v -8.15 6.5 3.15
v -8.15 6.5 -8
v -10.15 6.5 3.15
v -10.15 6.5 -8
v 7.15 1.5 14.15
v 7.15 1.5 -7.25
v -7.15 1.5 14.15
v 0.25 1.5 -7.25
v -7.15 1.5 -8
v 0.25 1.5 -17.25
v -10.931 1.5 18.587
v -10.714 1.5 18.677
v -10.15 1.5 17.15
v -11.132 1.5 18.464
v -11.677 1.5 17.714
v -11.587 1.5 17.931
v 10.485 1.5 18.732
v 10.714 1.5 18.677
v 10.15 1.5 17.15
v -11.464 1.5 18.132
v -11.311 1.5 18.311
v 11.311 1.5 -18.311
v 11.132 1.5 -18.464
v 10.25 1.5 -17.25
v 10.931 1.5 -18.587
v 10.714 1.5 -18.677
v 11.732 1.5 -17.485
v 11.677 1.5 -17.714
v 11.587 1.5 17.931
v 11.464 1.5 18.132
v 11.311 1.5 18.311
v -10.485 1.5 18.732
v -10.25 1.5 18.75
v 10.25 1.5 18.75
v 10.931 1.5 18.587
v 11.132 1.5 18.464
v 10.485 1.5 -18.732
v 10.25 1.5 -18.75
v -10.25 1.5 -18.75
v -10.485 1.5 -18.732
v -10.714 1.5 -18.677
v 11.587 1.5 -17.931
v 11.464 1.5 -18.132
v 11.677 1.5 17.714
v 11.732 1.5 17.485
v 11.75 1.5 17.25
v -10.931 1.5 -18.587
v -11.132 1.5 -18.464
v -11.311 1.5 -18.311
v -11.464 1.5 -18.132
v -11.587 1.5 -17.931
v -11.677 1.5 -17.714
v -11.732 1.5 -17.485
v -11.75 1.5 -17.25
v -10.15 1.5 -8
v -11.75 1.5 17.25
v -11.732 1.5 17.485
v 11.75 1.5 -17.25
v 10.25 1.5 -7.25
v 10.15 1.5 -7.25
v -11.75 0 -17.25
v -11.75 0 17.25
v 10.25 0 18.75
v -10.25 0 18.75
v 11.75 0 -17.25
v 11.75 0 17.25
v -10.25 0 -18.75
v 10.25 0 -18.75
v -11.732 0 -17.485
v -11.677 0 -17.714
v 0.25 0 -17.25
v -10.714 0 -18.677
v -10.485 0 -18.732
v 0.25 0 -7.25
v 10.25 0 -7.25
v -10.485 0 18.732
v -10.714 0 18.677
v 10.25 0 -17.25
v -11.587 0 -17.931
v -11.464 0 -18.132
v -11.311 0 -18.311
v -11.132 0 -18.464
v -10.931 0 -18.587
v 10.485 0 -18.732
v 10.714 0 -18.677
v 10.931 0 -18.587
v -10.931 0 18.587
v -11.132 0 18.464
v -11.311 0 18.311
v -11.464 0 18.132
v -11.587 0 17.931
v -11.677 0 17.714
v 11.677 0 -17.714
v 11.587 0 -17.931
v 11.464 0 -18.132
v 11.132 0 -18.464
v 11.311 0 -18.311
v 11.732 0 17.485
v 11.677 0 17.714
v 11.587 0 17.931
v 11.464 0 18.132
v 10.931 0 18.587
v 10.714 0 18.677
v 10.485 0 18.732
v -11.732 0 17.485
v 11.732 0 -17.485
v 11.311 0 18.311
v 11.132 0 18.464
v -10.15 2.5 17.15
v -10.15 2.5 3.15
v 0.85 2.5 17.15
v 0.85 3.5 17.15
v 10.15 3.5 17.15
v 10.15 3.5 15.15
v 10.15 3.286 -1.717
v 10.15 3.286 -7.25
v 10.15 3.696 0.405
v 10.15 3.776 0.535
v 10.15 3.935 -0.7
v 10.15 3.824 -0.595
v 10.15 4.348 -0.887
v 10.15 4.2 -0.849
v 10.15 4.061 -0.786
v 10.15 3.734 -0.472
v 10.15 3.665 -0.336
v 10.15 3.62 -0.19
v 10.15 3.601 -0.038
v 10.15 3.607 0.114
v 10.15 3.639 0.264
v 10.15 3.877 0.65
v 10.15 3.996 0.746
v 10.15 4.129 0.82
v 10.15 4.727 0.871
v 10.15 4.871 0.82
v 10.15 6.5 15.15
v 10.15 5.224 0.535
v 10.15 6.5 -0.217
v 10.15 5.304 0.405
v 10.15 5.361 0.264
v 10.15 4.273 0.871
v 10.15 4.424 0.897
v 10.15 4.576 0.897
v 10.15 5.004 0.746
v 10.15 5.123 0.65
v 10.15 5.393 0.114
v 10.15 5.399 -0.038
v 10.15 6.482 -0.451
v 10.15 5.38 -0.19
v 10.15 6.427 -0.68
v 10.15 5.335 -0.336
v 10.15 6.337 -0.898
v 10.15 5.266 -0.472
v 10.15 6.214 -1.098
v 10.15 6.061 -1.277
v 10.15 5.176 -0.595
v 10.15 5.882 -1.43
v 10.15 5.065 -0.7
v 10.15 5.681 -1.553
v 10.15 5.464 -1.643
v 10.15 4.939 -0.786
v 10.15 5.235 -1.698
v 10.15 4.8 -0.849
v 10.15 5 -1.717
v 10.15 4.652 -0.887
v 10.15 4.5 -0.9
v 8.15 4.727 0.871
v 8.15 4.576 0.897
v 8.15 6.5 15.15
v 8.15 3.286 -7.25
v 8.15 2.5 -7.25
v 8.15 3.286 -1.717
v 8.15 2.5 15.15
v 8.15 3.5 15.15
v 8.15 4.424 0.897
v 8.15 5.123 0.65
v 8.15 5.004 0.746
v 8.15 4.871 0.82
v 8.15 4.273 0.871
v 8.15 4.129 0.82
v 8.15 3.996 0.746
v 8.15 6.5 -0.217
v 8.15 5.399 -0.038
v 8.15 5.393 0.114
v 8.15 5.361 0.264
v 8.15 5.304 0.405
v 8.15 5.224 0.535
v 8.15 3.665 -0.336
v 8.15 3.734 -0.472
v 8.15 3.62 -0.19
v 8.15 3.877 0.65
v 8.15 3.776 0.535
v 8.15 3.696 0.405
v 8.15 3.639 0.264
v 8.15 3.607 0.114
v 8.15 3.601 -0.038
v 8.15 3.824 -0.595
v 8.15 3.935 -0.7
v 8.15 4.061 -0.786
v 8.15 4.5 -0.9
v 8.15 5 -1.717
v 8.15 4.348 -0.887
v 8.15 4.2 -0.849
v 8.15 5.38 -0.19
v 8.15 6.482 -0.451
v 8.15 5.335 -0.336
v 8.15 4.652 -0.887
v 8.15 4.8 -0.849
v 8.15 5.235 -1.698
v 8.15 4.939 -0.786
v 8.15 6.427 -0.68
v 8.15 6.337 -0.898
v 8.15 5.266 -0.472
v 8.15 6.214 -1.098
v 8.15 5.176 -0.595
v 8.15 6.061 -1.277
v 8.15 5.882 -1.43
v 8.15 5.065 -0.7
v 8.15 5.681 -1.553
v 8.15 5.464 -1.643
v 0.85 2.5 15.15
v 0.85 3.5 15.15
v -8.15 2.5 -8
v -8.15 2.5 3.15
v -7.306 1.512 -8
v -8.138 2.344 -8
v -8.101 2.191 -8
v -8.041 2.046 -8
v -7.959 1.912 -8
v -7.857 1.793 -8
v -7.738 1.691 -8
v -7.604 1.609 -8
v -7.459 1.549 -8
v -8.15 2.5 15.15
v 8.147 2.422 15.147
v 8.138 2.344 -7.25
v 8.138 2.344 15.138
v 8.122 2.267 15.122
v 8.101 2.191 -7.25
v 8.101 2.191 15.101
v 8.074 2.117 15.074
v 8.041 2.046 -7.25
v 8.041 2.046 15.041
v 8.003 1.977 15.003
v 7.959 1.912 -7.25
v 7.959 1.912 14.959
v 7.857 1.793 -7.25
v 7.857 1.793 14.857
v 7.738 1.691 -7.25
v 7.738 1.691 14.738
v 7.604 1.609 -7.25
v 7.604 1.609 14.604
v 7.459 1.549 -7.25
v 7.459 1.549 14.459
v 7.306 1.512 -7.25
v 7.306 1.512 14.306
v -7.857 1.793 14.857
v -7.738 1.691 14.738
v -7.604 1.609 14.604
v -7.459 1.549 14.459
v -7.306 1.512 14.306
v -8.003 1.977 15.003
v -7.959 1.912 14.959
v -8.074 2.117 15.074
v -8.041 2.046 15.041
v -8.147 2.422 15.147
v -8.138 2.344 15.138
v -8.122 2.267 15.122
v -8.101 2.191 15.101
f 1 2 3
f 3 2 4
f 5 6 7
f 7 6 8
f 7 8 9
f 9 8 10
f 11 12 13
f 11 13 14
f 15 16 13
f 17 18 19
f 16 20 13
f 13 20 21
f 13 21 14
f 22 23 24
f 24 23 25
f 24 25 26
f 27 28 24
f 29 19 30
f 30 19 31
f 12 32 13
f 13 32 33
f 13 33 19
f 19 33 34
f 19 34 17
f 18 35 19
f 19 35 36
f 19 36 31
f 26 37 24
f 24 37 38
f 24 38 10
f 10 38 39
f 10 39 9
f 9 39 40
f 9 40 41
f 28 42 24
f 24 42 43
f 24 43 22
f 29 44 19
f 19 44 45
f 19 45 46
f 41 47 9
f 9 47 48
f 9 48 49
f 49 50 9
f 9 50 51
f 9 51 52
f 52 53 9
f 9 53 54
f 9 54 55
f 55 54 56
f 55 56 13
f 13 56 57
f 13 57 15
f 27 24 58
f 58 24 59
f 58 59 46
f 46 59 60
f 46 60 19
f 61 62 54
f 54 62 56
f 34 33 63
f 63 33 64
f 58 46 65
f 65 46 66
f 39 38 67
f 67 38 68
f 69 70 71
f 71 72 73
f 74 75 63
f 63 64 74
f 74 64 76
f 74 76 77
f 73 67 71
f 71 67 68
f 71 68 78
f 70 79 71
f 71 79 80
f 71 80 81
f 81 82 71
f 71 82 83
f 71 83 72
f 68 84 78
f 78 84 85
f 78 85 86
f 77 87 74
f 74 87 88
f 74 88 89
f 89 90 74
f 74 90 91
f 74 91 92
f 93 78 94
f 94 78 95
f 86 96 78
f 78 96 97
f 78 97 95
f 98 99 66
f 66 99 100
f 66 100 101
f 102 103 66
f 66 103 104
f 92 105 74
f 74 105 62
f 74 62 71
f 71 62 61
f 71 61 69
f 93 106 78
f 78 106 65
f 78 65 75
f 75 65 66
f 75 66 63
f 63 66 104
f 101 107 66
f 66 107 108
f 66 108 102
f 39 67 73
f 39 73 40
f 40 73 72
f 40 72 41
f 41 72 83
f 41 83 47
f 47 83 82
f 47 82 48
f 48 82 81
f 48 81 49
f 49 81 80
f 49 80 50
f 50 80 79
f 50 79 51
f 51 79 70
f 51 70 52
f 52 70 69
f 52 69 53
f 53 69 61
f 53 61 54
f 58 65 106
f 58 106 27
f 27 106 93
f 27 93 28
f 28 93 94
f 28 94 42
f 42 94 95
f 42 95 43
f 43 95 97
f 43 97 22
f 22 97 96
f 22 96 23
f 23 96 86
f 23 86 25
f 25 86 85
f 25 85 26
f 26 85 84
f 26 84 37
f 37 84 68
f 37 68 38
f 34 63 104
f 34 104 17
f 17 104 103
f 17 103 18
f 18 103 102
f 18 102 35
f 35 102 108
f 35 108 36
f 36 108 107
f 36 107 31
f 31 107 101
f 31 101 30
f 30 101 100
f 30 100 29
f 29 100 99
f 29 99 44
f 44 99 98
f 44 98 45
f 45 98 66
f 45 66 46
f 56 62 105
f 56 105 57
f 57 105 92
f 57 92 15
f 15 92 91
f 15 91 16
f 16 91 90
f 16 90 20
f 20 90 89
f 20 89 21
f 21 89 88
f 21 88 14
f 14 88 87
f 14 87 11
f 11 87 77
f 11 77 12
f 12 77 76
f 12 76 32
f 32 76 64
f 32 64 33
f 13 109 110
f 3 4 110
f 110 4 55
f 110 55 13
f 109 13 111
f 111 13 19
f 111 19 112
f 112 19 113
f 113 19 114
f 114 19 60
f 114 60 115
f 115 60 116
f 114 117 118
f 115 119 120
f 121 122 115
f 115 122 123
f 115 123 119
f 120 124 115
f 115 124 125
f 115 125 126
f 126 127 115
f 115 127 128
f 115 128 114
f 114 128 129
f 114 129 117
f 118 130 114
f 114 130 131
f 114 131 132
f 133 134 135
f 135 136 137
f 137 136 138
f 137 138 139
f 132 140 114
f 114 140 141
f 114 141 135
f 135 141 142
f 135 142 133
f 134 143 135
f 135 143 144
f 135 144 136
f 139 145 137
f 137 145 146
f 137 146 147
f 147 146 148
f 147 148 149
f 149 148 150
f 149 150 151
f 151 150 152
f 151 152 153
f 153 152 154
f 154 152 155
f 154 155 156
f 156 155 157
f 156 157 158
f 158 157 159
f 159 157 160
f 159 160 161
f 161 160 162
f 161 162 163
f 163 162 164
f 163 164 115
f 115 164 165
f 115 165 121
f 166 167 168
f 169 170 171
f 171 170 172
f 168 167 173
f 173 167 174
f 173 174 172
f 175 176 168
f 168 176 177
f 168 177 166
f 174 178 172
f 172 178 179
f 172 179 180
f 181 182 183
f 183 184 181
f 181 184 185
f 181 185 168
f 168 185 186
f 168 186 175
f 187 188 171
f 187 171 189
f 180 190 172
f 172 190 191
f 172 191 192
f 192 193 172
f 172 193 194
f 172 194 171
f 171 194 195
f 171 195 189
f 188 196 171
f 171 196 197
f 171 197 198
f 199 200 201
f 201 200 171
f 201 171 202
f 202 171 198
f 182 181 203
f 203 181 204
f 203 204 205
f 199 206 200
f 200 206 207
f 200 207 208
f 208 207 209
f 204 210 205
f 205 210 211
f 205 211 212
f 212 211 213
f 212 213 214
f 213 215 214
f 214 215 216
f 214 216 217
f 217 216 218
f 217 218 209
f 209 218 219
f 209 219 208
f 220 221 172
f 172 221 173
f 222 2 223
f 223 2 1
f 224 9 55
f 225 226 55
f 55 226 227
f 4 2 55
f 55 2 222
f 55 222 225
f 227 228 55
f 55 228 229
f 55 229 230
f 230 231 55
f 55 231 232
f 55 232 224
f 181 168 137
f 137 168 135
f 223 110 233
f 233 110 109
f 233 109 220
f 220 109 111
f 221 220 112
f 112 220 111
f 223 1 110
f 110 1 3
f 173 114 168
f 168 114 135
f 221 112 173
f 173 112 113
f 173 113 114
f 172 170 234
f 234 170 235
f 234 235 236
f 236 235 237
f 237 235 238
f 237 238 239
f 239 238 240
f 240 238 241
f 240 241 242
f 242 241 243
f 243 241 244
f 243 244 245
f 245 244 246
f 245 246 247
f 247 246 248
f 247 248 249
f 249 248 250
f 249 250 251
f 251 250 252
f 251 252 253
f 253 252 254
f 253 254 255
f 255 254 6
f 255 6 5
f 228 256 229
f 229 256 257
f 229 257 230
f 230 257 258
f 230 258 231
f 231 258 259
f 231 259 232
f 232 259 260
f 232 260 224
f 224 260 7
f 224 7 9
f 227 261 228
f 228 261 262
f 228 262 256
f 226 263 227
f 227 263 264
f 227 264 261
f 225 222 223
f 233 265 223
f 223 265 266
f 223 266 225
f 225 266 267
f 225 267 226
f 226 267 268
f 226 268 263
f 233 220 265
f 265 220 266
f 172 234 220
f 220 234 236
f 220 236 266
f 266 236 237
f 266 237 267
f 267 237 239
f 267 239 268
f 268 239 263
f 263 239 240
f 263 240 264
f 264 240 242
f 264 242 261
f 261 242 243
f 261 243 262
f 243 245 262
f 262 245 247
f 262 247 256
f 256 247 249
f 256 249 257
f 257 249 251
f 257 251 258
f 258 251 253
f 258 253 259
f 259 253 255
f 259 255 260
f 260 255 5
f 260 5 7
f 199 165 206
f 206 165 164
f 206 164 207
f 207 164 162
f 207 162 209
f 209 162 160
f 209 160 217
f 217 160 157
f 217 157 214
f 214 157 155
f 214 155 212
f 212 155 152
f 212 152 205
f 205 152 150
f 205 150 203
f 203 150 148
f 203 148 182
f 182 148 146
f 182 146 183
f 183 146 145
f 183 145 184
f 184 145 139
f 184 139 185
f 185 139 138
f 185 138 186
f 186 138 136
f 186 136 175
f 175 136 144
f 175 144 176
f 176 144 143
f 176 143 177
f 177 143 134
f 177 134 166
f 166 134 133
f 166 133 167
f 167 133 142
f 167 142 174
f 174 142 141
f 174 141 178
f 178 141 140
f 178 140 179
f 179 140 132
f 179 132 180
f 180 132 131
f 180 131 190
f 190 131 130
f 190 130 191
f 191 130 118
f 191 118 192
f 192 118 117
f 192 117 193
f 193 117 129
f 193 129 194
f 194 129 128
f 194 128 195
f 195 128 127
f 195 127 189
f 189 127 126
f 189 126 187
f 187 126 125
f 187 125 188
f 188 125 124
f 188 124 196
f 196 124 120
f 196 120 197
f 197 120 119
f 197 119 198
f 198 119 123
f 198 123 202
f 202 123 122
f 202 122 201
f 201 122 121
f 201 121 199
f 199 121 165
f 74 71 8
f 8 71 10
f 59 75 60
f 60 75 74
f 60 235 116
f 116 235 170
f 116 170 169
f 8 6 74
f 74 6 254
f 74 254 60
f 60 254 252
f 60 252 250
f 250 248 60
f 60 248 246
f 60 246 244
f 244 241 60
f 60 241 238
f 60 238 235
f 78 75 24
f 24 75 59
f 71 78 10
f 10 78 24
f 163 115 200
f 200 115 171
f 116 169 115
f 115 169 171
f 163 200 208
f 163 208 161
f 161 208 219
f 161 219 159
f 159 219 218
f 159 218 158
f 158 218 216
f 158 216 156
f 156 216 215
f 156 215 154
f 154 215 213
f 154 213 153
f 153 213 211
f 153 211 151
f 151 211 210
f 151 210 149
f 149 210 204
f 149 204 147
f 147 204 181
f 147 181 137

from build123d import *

# Parameters (mm, degrees)
SKETCH_1_W          = 23.5
SKETCH_1_H          = 37.5
EXTRUDE_1_DEPTH     = 1.5
FILLET_1_R          = 1.5
EXTRUDE_2_DEPTH     = 5
SKETCH_3_W          = 2
SKETCH_3_H          = 4
CUT_EXTRUDE_1_DEPTH = 11
SKETCH_4_W          = 2
SKETCH_4_H          = 4
CUT_EXTRUDE_2_DEPTH = 12
SKETCH_5_W          = 2
SKETCH_5_H          = 3
CUT_EXTRUDE_3_DEPTH = 12
FILLET_2_R          = 1
SKETCH_6_R          = 0.9
CUT_EXTRUDE_4_DEPTH = 12
SKETCH_7_W          = 10
SKETCH_7_H          = 10
CUT_EXTRUDE_5_DEPTH = 12
SKETCH_8_W          = 5.533466027
SKETCH_8_H          = 3.21445342
CUT_EXTRUDE_6_DEPTH = 10
FILLET_3_R          = 1.5


with BuildPart() as part:
    # 草图1 → 凸台-拉伸1 (new body)
    with BuildSketch(Plane(origin=(0, 0, 0), x_dir=(1, 0, 0), z_dir=(0, 1, 0))):
        Rectangle(SKETCH_1_W, SKETCH_1_H)
    extrude(amount=EXTRUDE_1_DEPTH)

    # 圆角1
    fillet_1_edges = [part.edges().sort_by_distance(p)[0] for p in [
        (-11.75, 0.75, -18.75),
        (11.75, 0.75, -18.75),
        (11.75, 0.75, 18.75),
        (-11.75, 0.75, 18.75),
    ]]
    fillet(fillet_1_edges, radius=FILLET_1_R)

    # 草图2 → 凸台-拉伸2 (add)
    with BuildSketch(Plane(origin=(0, 1.5, 0), x_dir=(1, 0, 0), z_dir=(0, 1, 0))):
        Polygon((-8.792128206, -17.15), (10.15, -17.15), (10.15, 8), (8.15, 8), (8.15, -15.15), (-8.15, -15.15), (-8.15, 8), (-10.15, 8), (-10.15, -17.15), align=None)
    extrude(amount=EXTRUDE_2_DEPTH)

    # 草图3 → 切除-拉伸1 (cut)
    with BuildSketch(Plane.ZY.offset(10.15)):
        with Locations((16.15, 4.5)):
            Rectangle(SKETCH_3_W, SKETCH_3_H)
    extrude(amount=-CUT_EXTRUDE_1_DEPTH, mode=Mode.SUBTRACT)

    # 草图4 → 切除-拉伸2 (cut)
    with BuildSketch(Plane.XY.offset(15.15)):
        with Locations((-9.15, 4.5)):
            Rectangle(SKETCH_4_W, SKETCH_4_H)
    extrude(amount=-CUT_EXTRUDE_2_DEPTH, mode=Mode.SUBTRACT)

    # 草图5 → 切除-拉伸3 (cut)
    with BuildSketch(Plane.ZY.offset(-0.85)):
        with Locations((16.15, 5)):
            Rectangle(SKETCH_5_W, SKETCH_5_H)
    extrude(amount=-CUT_EXTRUDE_3_DEPTH, mode=Mode.SUBTRACT)

    # 圆角2
    fillet_2_edges = [part.edges().sort_by_distance(p)[0] for p in [
        (0, 1.5, 15.15),
        (-8.15, 1.5, 3.575),
        (8.15, 1.5, 3.575),
    ]]
    fillet(fillet_2_edges, radius=FILLET_2_R - 0.0001)  # a hair under: the kernel refuses the full size

    # 草图6 → 切除-拉伸4 (cut)
    with BuildSketch(Plane(origin=(10.15, 0, 0), x_dir=(0, 0, -1), z_dir=(1, 0, 0))):
        with Locations((0, 4.5)):
            Circle(SKETCH_6_R)
    extrude(amount=-CUT_EXTRUDE_4_DEPTH, mode=Mode.SUBTRACT)

    # 草图7 → 切除-拉伸5 (cut)
    with BuildSketch(Plane.XZ):
        with Locations((5.25, -12.25)):
            Rectangle(SKETCH_7_W, SKETCH_7_H)
    extrude(amount=-CUT_EXTRUDE_5_DEPTH, mode=Mode.SUBTRACT)

    # 草图8 → 切除-拉伸6 (cut)
    with BuildSketch(Plane(origin=(10.15, 0, 0), x_dir=(0, 0, -1), z_dir=(1, 0, 0))):
        with Locations((4.483266987, 4.89277329)):
            Rectangle(SKETCH_8_W, SKETCH_8_H)
    extrude(amount=-CUT_EXTRUDE_6_DEPTH, mode=Mode.SUBTRACT)

    # 圆角3
    fillet_3_edges = [part.edges().sort_by_distance(p)[0] for p in [
        (9.15, 6.5, -1.716533973),
    ]]
    fillet(fillet_3_edges, radius=FILLET_3_R)


solid = part.part
